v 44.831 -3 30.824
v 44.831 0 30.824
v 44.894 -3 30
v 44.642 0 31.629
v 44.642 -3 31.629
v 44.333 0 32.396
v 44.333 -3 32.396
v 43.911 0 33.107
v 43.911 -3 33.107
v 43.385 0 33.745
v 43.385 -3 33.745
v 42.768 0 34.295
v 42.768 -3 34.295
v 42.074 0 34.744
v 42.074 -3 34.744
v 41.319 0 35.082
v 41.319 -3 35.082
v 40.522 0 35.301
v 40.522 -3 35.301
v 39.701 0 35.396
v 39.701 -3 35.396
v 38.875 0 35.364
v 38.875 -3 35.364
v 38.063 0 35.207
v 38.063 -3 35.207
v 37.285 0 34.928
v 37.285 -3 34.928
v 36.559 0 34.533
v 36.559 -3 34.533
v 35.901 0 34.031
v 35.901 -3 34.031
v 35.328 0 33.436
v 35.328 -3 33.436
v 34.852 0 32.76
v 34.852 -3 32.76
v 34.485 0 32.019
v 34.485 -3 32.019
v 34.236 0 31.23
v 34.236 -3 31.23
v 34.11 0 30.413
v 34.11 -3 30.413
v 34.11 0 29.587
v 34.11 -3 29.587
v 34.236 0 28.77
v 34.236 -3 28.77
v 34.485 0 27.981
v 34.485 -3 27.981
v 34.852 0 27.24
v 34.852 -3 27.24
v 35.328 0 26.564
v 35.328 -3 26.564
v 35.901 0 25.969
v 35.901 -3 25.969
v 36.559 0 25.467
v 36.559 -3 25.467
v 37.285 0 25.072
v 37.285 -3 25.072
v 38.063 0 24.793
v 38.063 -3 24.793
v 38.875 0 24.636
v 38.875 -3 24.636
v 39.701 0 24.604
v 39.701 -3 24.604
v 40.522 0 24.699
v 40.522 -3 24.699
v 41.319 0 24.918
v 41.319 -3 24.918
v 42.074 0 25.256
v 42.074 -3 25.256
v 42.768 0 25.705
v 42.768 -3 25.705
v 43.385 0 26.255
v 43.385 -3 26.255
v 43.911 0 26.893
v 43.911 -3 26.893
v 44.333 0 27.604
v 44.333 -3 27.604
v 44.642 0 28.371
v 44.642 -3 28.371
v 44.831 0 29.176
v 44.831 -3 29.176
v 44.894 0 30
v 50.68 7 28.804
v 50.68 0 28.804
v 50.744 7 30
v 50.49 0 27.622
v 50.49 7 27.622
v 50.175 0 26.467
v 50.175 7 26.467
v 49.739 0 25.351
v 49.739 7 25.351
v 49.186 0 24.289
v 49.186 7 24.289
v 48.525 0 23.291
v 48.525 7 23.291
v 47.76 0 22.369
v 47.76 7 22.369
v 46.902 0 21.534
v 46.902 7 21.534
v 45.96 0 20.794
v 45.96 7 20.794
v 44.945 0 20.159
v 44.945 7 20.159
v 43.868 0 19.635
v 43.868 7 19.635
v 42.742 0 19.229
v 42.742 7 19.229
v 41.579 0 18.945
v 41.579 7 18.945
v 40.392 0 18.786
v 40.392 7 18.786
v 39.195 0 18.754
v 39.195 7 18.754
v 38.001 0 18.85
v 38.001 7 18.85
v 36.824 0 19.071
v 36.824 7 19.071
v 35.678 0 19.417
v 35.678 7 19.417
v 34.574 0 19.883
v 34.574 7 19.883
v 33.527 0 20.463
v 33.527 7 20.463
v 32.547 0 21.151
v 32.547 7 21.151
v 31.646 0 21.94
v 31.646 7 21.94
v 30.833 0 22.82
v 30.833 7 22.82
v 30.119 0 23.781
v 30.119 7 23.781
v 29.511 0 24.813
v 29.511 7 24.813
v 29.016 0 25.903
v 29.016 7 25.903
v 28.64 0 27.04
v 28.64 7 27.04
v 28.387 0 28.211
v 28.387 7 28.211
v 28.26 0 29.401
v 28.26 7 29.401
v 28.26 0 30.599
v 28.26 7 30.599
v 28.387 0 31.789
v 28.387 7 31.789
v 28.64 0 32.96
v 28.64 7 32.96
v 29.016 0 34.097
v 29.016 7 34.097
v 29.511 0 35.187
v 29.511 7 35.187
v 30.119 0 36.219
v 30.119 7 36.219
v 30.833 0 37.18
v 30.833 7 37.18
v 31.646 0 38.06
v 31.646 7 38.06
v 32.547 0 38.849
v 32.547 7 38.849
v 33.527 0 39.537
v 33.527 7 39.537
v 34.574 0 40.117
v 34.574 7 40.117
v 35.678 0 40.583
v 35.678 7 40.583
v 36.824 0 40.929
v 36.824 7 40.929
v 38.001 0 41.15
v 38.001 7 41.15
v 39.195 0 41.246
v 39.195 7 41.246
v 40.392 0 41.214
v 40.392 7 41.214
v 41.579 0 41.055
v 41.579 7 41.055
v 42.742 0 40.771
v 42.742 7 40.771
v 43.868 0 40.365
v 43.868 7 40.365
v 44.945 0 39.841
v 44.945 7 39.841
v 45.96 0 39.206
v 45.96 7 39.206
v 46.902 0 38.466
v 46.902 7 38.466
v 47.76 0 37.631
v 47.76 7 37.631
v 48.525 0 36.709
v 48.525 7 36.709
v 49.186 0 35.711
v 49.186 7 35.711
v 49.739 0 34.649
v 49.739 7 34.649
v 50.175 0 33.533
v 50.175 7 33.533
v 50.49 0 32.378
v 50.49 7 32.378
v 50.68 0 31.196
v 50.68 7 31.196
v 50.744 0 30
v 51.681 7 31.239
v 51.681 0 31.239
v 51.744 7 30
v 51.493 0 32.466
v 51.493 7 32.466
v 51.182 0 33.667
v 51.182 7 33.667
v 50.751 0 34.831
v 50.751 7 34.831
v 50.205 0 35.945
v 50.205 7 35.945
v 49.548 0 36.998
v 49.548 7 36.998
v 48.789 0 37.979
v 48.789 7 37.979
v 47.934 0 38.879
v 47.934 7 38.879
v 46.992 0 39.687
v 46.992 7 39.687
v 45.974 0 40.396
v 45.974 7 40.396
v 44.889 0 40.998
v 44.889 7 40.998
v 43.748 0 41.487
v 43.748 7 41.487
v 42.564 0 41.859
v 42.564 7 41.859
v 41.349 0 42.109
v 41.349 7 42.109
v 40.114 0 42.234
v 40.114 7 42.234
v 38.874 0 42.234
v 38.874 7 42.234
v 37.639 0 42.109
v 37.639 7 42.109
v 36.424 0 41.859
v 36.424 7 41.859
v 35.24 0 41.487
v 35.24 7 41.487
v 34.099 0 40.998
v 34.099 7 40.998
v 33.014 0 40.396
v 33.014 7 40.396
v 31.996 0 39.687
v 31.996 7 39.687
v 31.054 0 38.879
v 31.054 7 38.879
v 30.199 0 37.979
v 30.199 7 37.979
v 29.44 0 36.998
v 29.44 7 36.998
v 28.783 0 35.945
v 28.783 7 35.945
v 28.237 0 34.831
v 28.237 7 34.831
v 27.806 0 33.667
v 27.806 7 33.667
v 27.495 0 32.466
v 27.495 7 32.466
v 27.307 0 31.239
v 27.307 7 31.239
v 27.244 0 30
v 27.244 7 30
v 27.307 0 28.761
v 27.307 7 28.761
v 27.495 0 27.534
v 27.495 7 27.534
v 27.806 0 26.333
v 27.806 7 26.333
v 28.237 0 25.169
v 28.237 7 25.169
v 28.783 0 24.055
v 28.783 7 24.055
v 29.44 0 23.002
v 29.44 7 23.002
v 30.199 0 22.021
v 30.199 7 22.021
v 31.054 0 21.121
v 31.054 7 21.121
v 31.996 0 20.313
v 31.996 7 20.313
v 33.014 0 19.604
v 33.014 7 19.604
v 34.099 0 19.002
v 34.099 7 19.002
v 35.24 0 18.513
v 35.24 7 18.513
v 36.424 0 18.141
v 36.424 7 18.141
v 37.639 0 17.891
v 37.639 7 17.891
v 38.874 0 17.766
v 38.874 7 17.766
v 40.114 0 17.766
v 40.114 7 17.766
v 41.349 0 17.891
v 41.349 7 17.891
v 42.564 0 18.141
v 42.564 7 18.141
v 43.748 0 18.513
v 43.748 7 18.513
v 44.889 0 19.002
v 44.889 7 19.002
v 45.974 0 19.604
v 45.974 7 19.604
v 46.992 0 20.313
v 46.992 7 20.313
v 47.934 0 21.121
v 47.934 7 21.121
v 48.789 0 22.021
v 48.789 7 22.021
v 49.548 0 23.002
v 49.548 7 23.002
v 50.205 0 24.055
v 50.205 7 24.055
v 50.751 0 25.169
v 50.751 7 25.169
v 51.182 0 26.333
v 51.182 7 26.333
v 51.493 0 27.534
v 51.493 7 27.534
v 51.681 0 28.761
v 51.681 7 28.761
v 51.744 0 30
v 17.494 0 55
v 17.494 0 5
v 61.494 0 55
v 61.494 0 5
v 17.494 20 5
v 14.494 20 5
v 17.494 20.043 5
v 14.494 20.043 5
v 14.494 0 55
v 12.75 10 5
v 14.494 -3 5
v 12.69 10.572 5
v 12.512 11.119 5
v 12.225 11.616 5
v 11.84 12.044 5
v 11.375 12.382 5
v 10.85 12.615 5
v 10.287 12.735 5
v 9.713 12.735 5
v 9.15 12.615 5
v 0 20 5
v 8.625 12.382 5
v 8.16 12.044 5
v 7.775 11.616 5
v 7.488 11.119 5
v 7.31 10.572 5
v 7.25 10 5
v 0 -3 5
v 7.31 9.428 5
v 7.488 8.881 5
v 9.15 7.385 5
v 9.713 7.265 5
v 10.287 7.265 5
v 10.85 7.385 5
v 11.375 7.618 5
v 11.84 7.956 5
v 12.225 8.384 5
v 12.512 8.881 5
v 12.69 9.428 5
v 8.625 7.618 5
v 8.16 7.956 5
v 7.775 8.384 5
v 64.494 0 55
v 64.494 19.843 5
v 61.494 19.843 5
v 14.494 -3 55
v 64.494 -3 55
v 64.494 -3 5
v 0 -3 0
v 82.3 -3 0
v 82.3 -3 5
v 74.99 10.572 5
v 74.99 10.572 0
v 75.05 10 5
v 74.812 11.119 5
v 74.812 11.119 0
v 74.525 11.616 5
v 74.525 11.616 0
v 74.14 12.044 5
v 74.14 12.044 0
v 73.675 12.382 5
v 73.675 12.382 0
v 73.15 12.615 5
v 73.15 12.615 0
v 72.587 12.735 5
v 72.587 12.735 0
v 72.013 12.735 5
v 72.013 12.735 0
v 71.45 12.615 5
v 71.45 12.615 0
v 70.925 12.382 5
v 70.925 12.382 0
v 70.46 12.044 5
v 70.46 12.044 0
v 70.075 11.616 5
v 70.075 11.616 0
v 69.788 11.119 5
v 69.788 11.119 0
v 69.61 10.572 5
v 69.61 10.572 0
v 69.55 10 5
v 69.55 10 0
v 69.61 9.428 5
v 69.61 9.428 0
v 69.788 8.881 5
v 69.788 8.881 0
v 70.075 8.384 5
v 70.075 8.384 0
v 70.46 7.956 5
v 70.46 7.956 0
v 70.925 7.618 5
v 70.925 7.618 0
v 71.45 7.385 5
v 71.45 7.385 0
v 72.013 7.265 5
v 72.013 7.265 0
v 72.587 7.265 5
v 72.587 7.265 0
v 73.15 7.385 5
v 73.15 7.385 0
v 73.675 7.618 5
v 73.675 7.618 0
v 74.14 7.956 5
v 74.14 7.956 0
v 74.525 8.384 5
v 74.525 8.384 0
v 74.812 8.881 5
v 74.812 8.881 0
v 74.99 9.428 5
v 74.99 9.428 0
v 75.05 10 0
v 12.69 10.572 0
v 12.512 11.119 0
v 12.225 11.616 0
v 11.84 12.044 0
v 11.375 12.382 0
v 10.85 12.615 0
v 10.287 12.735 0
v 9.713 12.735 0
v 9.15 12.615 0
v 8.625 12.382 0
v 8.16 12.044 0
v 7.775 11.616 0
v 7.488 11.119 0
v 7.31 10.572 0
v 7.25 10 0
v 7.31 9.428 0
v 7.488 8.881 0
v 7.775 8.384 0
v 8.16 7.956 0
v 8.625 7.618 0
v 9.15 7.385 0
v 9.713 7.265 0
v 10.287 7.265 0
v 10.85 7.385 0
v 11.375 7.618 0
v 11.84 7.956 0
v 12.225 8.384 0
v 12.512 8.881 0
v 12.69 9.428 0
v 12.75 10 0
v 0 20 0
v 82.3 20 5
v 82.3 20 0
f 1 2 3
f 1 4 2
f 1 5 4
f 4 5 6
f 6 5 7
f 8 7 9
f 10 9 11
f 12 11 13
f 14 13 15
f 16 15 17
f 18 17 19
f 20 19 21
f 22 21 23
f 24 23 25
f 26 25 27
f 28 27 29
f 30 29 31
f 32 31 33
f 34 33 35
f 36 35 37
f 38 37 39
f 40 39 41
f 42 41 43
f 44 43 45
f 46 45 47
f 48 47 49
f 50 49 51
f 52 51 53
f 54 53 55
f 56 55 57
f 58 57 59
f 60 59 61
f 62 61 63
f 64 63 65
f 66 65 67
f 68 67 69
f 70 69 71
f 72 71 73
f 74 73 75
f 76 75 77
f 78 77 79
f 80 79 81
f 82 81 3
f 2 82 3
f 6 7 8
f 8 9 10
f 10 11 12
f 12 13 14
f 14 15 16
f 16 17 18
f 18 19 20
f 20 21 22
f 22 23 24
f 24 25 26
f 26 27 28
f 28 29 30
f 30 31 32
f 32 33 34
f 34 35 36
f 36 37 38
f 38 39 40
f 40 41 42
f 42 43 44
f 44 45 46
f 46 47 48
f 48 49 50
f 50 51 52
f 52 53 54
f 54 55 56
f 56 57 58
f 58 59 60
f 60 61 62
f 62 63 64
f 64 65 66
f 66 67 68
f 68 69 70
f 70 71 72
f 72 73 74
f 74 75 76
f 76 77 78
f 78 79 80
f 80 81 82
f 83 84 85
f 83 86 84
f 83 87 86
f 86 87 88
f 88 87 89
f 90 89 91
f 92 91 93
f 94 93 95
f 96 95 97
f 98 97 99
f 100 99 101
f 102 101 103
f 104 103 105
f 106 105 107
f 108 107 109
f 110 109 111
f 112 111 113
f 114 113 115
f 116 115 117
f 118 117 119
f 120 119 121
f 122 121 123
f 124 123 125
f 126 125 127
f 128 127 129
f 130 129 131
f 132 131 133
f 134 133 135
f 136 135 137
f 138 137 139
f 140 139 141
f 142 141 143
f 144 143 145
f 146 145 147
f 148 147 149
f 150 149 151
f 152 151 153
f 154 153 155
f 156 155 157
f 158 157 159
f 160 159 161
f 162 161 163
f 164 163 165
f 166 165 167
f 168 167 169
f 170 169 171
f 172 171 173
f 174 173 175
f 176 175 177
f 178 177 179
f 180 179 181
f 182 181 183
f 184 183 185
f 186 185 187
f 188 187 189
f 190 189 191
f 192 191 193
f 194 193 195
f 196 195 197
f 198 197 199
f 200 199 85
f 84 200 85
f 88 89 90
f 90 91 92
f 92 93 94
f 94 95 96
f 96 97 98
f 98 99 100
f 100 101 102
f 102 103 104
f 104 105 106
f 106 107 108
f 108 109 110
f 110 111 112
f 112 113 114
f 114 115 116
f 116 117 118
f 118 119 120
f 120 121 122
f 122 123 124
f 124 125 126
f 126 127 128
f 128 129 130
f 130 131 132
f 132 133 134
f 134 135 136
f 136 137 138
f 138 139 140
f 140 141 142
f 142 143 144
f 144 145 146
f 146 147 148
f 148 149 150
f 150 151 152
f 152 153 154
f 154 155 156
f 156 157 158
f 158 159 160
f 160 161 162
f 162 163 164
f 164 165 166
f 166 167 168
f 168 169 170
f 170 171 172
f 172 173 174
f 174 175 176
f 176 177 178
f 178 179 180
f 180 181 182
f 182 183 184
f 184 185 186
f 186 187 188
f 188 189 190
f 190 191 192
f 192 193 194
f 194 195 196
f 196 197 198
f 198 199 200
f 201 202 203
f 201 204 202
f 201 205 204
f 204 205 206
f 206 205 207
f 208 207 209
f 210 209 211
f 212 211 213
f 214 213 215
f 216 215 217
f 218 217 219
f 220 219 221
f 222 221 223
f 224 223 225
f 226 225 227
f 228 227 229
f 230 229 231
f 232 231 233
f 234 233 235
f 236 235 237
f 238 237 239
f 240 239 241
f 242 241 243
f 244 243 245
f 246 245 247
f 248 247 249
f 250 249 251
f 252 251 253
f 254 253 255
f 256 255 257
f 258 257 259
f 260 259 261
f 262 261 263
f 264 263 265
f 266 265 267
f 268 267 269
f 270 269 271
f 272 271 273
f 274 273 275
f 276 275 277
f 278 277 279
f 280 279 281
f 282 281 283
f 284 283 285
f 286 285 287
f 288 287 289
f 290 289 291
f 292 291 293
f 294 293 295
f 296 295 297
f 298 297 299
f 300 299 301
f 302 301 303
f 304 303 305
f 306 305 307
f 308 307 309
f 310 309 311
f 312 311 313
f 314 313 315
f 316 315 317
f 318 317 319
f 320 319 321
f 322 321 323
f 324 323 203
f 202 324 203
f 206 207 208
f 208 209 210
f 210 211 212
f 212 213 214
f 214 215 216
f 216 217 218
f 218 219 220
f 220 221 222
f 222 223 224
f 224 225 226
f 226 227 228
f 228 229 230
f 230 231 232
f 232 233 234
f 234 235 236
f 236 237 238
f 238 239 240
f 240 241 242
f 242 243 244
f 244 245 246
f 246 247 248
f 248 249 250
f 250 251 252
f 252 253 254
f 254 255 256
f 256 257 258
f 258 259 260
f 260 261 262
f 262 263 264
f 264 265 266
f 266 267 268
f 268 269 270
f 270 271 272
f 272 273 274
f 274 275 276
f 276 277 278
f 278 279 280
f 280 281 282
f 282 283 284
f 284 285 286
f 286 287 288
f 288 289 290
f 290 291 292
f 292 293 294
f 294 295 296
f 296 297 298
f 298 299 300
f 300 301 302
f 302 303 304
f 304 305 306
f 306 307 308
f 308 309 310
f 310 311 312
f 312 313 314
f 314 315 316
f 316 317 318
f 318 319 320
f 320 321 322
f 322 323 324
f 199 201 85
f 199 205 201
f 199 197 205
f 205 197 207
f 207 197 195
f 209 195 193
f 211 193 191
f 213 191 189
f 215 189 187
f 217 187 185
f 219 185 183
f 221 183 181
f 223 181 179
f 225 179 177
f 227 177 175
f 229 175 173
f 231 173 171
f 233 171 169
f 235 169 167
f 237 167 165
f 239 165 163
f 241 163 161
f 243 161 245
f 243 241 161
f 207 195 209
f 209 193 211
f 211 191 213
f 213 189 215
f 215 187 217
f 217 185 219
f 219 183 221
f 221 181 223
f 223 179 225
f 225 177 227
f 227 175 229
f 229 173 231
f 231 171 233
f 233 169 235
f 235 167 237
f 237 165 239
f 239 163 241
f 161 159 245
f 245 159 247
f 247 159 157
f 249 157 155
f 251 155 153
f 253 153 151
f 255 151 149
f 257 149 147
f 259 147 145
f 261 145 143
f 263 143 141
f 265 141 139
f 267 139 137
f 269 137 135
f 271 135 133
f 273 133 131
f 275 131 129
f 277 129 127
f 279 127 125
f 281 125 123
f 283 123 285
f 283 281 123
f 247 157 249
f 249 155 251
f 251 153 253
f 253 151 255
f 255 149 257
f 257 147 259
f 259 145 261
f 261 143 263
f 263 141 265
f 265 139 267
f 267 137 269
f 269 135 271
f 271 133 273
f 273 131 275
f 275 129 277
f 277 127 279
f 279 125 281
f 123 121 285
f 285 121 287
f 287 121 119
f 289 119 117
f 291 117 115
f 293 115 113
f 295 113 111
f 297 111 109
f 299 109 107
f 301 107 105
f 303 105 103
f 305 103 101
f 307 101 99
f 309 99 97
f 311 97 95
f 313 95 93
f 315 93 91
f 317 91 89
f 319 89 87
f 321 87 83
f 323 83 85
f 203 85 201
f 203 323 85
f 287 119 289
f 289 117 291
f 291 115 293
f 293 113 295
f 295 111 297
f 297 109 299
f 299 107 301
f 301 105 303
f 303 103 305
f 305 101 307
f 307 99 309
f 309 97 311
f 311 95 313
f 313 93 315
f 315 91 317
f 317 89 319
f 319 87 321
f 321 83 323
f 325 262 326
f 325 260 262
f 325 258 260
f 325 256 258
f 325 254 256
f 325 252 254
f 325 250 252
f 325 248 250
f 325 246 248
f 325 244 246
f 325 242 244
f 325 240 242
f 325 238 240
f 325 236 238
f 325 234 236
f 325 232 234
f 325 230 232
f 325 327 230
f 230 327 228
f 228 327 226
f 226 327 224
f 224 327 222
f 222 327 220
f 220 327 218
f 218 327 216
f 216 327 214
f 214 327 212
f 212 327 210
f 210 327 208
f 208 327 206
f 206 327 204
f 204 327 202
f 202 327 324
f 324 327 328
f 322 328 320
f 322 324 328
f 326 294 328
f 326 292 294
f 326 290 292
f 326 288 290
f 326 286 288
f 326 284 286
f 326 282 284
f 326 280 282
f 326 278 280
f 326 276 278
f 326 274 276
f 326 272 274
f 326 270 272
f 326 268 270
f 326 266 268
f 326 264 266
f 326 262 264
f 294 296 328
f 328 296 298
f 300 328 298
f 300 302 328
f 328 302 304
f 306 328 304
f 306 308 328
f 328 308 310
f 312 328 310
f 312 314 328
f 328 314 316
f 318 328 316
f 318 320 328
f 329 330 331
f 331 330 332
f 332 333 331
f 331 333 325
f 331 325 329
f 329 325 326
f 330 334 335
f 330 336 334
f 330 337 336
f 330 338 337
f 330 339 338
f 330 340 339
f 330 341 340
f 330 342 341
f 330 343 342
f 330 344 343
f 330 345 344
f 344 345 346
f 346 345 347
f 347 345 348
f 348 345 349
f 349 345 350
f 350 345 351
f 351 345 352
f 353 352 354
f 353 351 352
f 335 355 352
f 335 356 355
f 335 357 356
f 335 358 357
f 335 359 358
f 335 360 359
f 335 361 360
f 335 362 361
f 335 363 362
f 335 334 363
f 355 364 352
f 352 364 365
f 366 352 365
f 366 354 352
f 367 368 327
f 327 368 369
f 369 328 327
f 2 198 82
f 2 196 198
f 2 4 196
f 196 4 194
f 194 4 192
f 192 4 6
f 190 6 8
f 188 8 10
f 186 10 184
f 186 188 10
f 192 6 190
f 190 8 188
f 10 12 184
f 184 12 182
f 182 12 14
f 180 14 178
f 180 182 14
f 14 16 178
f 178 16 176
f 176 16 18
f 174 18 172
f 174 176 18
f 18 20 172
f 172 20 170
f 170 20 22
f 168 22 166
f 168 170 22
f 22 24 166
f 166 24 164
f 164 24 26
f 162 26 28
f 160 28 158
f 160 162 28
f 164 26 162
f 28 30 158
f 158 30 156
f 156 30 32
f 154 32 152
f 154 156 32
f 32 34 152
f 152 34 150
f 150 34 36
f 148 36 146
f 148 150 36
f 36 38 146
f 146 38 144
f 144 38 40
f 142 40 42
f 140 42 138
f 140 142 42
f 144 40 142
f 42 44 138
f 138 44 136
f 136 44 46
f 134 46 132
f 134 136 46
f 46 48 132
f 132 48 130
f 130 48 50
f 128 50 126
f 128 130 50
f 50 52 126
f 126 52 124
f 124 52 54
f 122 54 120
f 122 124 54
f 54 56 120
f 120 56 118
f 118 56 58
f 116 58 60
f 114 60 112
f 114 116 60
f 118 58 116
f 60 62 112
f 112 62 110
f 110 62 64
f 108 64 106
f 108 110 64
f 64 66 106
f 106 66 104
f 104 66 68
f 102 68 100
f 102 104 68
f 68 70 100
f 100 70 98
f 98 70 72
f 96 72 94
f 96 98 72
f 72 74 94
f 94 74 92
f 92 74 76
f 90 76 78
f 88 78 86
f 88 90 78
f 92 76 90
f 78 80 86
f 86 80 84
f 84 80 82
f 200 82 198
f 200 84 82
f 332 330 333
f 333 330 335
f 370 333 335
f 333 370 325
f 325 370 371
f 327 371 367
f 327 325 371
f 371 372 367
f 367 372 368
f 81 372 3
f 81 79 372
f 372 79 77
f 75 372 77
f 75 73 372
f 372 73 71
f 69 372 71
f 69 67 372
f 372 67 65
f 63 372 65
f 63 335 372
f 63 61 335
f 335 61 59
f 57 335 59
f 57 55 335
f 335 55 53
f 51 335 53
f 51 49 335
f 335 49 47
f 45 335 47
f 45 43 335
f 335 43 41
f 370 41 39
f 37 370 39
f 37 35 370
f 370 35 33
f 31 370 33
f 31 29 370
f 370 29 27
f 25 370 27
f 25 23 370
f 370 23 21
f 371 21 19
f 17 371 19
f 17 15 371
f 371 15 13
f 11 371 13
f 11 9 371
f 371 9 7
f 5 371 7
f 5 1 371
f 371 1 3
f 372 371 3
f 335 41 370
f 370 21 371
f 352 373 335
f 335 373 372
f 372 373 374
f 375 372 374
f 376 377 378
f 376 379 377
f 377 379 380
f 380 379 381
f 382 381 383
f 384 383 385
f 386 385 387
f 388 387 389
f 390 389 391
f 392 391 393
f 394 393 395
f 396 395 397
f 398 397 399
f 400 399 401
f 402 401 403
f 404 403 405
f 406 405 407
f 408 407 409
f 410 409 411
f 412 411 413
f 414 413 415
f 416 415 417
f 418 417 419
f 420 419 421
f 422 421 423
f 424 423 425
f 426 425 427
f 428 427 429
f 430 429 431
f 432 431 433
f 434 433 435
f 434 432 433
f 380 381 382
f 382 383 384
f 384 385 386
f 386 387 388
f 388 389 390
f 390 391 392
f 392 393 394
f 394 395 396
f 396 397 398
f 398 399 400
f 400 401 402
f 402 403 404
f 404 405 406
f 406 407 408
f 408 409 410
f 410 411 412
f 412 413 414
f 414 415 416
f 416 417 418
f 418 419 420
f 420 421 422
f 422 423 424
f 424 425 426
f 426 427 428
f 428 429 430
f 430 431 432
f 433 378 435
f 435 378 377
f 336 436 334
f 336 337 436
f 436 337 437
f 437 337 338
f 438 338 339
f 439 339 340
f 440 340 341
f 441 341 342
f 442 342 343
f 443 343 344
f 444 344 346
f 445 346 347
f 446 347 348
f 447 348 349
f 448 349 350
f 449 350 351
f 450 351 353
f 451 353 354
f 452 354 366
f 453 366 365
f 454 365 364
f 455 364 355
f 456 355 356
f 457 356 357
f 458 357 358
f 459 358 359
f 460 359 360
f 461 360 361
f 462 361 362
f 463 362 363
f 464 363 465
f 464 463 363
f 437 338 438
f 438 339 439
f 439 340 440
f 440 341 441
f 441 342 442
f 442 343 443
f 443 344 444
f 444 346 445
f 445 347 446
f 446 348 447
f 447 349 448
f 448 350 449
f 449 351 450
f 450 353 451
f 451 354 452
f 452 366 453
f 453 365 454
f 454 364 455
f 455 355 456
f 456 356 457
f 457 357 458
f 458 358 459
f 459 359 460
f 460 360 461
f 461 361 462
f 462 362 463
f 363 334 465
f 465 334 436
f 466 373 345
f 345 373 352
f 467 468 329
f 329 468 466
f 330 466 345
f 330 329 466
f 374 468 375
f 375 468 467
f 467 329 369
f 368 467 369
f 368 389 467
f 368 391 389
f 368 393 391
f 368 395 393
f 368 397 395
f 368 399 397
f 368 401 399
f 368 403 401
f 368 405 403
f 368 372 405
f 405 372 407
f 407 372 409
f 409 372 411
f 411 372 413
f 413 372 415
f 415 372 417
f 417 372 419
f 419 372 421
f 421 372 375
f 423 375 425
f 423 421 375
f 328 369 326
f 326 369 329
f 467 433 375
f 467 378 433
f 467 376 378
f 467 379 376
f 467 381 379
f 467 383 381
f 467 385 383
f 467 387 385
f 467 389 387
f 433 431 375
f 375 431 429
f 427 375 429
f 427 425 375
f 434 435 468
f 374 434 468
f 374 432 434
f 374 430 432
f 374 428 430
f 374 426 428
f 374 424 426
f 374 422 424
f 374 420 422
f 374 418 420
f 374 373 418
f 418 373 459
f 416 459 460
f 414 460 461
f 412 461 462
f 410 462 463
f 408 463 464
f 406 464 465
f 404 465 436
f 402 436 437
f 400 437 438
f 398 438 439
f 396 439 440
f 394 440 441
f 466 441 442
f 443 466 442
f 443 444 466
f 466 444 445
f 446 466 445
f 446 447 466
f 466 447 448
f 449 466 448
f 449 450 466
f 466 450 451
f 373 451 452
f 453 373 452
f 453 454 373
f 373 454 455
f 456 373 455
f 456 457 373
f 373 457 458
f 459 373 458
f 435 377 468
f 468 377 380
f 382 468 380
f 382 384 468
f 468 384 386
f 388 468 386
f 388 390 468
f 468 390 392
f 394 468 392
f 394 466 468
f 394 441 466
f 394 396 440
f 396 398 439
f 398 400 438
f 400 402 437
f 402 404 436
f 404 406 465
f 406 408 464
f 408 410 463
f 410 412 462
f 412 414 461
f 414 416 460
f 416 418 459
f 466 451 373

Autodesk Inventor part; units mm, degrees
ref_plane "YZ Plane" through (0, 0, 0) normal (1, 0, 0) x (0, 1, 0)
ref_plane "XZ Plane" through (0, 0, 0) normal (0, 1, 0) x (-1, 0, 0)
ref_plane "XY Plane" through (0, 0, 0) normal (0, 0, 1) x (1, 0, 0)
sketch "Sketch6" plane through (0, 0, 0) normal (0, 0, 1) x (1, 0, 0)
  line L0 (0, 0) -> (82.3, 0)
  line L1 (82.3, 0) -> (82.3, 20)
  line L2 (82.3, 20) -> (0, 20)
  line L3 (0, 20) -> (0, 0)
  line L4 (0, 0) -> (10, 0) construction
  line L5 (10, 0) -> (10, 26.8607) construction
  line L6 (0, 10) -> (82.8633, 10) construction
  line L7 (82.3, 0) -> (72.3, 0) construction
  line L8 (72.3, 0) -> (72.3, 17.2228) construction
  circle A0 centre (10, 10) radius 2.75
  circle A1 centre (72.3, 10) radius 2.75
  dimension "d32" = 82.3
  dimension "d33" = 20
  dimension "d34" = 10
  dimension "d35" = 10
  dimension "d36" = 5.5
  dimension "d37" = 5.5
extrude "Extrusion5" add sketch "Sketch6" along normal blind 5
sketch "Sketch7" plane through (0, 0, 0) normal (0, -1, 0) x (1, 0, 0)
  line L0 (82.3, 0) -> (82.3, 5) projected
  line L1 (0, 0) -> (0, 5) projected
  line L2 (41.15, 21.713) -> (41.15, -8.4757)
  line L3 (64.494, 5) -> (64.494, 55)
  line L4 (64.494, 55) -> (14.494, 55)
  line L5 (14.494, 55) -> (14.494, 5)
  line L6 (14.494, 5) -> (0, 5)
  line L7 (64.494, 5) -> (82.3, 5)
  line L8 (82.3, 0) -> (0, 0)
  dimension "d40" = 50
  dimension "d41" = 50
extrude "Extrusion6" add sketch "Sketch7" along normal blind 3
sketch "Sketch8" plane through (64.494, 0, 55) normal (1, 0, 0) x (0, 0, -1)
  line L0 (0, 0) -> (50, 0) projected
  line L1 (0, 0) -> (50, 19.8426)
  line L2 (0, 0) -> (50, 0)
  line L3 (50, 0) -> (50, 19.8426)
  point P0 (55, 0)
extrude "Extrusion7" add sketch "Sketch8" against normal blind 3
sketch "Sketch9" plane through (14.494, 0, 5) normal (-1, 0, 0) x (0, 0, 1)
  line L0 (50, 0) -> (50, -3) projected
  line L1 (0, 0) -> (50, 0)
  line L2 (50, 0) -> (0, 20.0433)
  line L3 (0, 0) -> (0, 20.0433)
extrude "Extrusion8" add sketch "Sketch9" against normal blind 3
sketch "Sketch10" plane through (0, 0, 0) normal (0, 1, 0) x (1, 0, 0)
  line L0 (17.494, -5) -> (61.494, -55) construction
  line L1 (61.494, -5) -> (17.494, -55) construction
  circle A0 centre (39.494, -30) radius 11.25
  circle A1 centre (39.494, -30) radius 12.25
  point P0 (0, 0)
  dimension "d48" = 22.5
  dimension "d49" = 24.5
extrude "Extrusion9" add sketch "Sketch10" along normal blind 7
sketch "Sketch11" plane through (39.494, 0, 30) normal (0, 1, 0) x (1, 0, 0)
  circle A0 centre (0, 0) radius 11.25 projected
  circle A1 centre (0, 0) radius 5.4
  point P0 (-39.494, 30)
  dimension "d52" = 10.8
extrude "Extrusion10" cut sketch "Sketch11" against normal through all contours A1
properties part number "z leadscrew top mount" material "ABS Plastic"
